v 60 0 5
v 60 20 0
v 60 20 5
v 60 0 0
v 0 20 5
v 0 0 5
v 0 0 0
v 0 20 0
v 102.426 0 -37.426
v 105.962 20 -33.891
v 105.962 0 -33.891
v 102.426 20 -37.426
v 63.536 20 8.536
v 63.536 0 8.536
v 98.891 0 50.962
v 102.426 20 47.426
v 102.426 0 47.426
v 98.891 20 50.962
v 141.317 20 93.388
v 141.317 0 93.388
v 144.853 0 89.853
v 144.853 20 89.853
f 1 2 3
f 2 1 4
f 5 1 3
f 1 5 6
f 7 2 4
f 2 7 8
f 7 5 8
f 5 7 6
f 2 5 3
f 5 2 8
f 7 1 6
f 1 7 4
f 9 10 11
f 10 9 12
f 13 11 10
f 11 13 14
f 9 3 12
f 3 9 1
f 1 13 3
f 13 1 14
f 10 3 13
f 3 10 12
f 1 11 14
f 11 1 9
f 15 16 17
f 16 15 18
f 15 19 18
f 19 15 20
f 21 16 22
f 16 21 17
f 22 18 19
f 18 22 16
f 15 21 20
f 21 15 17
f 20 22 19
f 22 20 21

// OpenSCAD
// Parameters for the zigzag plate
plate_length = 60;  // Length of each segment of the plate
plate_width = 20;   // Width of the plate
plate_thickness = 5; // Thickness of the plate
bend_angle = 45;    // Adjusted angle of the bends in degrees for sharper Z-like structure
bend_offset = plate_thickness / tan(bend_angle); // Offset for the bend

module zigzag_plate() {
    // First segment
    translate([0, 0, 0])
    cube([plate_length, plate_width, plate_thickness], center = false);

    // Second segment (angled)
    translate([plate_length, 0, plate_thickness])
    rotate([0, bend_angle, 0])
    cube([plate_length, plate_width, plate_thickness], center = false);

    // Third segment
    translate([plate_length + plate_length * cos(bend_angle), 0, plate_thickness + plate_length * sin(bend_angle)])
    rotate([0, -bend_angle, 0])
    cube([plate_length, plate_width, plate_thickness], center = false);
}

// Call the zigzag_plate module to render the model
zigzag_plate();
